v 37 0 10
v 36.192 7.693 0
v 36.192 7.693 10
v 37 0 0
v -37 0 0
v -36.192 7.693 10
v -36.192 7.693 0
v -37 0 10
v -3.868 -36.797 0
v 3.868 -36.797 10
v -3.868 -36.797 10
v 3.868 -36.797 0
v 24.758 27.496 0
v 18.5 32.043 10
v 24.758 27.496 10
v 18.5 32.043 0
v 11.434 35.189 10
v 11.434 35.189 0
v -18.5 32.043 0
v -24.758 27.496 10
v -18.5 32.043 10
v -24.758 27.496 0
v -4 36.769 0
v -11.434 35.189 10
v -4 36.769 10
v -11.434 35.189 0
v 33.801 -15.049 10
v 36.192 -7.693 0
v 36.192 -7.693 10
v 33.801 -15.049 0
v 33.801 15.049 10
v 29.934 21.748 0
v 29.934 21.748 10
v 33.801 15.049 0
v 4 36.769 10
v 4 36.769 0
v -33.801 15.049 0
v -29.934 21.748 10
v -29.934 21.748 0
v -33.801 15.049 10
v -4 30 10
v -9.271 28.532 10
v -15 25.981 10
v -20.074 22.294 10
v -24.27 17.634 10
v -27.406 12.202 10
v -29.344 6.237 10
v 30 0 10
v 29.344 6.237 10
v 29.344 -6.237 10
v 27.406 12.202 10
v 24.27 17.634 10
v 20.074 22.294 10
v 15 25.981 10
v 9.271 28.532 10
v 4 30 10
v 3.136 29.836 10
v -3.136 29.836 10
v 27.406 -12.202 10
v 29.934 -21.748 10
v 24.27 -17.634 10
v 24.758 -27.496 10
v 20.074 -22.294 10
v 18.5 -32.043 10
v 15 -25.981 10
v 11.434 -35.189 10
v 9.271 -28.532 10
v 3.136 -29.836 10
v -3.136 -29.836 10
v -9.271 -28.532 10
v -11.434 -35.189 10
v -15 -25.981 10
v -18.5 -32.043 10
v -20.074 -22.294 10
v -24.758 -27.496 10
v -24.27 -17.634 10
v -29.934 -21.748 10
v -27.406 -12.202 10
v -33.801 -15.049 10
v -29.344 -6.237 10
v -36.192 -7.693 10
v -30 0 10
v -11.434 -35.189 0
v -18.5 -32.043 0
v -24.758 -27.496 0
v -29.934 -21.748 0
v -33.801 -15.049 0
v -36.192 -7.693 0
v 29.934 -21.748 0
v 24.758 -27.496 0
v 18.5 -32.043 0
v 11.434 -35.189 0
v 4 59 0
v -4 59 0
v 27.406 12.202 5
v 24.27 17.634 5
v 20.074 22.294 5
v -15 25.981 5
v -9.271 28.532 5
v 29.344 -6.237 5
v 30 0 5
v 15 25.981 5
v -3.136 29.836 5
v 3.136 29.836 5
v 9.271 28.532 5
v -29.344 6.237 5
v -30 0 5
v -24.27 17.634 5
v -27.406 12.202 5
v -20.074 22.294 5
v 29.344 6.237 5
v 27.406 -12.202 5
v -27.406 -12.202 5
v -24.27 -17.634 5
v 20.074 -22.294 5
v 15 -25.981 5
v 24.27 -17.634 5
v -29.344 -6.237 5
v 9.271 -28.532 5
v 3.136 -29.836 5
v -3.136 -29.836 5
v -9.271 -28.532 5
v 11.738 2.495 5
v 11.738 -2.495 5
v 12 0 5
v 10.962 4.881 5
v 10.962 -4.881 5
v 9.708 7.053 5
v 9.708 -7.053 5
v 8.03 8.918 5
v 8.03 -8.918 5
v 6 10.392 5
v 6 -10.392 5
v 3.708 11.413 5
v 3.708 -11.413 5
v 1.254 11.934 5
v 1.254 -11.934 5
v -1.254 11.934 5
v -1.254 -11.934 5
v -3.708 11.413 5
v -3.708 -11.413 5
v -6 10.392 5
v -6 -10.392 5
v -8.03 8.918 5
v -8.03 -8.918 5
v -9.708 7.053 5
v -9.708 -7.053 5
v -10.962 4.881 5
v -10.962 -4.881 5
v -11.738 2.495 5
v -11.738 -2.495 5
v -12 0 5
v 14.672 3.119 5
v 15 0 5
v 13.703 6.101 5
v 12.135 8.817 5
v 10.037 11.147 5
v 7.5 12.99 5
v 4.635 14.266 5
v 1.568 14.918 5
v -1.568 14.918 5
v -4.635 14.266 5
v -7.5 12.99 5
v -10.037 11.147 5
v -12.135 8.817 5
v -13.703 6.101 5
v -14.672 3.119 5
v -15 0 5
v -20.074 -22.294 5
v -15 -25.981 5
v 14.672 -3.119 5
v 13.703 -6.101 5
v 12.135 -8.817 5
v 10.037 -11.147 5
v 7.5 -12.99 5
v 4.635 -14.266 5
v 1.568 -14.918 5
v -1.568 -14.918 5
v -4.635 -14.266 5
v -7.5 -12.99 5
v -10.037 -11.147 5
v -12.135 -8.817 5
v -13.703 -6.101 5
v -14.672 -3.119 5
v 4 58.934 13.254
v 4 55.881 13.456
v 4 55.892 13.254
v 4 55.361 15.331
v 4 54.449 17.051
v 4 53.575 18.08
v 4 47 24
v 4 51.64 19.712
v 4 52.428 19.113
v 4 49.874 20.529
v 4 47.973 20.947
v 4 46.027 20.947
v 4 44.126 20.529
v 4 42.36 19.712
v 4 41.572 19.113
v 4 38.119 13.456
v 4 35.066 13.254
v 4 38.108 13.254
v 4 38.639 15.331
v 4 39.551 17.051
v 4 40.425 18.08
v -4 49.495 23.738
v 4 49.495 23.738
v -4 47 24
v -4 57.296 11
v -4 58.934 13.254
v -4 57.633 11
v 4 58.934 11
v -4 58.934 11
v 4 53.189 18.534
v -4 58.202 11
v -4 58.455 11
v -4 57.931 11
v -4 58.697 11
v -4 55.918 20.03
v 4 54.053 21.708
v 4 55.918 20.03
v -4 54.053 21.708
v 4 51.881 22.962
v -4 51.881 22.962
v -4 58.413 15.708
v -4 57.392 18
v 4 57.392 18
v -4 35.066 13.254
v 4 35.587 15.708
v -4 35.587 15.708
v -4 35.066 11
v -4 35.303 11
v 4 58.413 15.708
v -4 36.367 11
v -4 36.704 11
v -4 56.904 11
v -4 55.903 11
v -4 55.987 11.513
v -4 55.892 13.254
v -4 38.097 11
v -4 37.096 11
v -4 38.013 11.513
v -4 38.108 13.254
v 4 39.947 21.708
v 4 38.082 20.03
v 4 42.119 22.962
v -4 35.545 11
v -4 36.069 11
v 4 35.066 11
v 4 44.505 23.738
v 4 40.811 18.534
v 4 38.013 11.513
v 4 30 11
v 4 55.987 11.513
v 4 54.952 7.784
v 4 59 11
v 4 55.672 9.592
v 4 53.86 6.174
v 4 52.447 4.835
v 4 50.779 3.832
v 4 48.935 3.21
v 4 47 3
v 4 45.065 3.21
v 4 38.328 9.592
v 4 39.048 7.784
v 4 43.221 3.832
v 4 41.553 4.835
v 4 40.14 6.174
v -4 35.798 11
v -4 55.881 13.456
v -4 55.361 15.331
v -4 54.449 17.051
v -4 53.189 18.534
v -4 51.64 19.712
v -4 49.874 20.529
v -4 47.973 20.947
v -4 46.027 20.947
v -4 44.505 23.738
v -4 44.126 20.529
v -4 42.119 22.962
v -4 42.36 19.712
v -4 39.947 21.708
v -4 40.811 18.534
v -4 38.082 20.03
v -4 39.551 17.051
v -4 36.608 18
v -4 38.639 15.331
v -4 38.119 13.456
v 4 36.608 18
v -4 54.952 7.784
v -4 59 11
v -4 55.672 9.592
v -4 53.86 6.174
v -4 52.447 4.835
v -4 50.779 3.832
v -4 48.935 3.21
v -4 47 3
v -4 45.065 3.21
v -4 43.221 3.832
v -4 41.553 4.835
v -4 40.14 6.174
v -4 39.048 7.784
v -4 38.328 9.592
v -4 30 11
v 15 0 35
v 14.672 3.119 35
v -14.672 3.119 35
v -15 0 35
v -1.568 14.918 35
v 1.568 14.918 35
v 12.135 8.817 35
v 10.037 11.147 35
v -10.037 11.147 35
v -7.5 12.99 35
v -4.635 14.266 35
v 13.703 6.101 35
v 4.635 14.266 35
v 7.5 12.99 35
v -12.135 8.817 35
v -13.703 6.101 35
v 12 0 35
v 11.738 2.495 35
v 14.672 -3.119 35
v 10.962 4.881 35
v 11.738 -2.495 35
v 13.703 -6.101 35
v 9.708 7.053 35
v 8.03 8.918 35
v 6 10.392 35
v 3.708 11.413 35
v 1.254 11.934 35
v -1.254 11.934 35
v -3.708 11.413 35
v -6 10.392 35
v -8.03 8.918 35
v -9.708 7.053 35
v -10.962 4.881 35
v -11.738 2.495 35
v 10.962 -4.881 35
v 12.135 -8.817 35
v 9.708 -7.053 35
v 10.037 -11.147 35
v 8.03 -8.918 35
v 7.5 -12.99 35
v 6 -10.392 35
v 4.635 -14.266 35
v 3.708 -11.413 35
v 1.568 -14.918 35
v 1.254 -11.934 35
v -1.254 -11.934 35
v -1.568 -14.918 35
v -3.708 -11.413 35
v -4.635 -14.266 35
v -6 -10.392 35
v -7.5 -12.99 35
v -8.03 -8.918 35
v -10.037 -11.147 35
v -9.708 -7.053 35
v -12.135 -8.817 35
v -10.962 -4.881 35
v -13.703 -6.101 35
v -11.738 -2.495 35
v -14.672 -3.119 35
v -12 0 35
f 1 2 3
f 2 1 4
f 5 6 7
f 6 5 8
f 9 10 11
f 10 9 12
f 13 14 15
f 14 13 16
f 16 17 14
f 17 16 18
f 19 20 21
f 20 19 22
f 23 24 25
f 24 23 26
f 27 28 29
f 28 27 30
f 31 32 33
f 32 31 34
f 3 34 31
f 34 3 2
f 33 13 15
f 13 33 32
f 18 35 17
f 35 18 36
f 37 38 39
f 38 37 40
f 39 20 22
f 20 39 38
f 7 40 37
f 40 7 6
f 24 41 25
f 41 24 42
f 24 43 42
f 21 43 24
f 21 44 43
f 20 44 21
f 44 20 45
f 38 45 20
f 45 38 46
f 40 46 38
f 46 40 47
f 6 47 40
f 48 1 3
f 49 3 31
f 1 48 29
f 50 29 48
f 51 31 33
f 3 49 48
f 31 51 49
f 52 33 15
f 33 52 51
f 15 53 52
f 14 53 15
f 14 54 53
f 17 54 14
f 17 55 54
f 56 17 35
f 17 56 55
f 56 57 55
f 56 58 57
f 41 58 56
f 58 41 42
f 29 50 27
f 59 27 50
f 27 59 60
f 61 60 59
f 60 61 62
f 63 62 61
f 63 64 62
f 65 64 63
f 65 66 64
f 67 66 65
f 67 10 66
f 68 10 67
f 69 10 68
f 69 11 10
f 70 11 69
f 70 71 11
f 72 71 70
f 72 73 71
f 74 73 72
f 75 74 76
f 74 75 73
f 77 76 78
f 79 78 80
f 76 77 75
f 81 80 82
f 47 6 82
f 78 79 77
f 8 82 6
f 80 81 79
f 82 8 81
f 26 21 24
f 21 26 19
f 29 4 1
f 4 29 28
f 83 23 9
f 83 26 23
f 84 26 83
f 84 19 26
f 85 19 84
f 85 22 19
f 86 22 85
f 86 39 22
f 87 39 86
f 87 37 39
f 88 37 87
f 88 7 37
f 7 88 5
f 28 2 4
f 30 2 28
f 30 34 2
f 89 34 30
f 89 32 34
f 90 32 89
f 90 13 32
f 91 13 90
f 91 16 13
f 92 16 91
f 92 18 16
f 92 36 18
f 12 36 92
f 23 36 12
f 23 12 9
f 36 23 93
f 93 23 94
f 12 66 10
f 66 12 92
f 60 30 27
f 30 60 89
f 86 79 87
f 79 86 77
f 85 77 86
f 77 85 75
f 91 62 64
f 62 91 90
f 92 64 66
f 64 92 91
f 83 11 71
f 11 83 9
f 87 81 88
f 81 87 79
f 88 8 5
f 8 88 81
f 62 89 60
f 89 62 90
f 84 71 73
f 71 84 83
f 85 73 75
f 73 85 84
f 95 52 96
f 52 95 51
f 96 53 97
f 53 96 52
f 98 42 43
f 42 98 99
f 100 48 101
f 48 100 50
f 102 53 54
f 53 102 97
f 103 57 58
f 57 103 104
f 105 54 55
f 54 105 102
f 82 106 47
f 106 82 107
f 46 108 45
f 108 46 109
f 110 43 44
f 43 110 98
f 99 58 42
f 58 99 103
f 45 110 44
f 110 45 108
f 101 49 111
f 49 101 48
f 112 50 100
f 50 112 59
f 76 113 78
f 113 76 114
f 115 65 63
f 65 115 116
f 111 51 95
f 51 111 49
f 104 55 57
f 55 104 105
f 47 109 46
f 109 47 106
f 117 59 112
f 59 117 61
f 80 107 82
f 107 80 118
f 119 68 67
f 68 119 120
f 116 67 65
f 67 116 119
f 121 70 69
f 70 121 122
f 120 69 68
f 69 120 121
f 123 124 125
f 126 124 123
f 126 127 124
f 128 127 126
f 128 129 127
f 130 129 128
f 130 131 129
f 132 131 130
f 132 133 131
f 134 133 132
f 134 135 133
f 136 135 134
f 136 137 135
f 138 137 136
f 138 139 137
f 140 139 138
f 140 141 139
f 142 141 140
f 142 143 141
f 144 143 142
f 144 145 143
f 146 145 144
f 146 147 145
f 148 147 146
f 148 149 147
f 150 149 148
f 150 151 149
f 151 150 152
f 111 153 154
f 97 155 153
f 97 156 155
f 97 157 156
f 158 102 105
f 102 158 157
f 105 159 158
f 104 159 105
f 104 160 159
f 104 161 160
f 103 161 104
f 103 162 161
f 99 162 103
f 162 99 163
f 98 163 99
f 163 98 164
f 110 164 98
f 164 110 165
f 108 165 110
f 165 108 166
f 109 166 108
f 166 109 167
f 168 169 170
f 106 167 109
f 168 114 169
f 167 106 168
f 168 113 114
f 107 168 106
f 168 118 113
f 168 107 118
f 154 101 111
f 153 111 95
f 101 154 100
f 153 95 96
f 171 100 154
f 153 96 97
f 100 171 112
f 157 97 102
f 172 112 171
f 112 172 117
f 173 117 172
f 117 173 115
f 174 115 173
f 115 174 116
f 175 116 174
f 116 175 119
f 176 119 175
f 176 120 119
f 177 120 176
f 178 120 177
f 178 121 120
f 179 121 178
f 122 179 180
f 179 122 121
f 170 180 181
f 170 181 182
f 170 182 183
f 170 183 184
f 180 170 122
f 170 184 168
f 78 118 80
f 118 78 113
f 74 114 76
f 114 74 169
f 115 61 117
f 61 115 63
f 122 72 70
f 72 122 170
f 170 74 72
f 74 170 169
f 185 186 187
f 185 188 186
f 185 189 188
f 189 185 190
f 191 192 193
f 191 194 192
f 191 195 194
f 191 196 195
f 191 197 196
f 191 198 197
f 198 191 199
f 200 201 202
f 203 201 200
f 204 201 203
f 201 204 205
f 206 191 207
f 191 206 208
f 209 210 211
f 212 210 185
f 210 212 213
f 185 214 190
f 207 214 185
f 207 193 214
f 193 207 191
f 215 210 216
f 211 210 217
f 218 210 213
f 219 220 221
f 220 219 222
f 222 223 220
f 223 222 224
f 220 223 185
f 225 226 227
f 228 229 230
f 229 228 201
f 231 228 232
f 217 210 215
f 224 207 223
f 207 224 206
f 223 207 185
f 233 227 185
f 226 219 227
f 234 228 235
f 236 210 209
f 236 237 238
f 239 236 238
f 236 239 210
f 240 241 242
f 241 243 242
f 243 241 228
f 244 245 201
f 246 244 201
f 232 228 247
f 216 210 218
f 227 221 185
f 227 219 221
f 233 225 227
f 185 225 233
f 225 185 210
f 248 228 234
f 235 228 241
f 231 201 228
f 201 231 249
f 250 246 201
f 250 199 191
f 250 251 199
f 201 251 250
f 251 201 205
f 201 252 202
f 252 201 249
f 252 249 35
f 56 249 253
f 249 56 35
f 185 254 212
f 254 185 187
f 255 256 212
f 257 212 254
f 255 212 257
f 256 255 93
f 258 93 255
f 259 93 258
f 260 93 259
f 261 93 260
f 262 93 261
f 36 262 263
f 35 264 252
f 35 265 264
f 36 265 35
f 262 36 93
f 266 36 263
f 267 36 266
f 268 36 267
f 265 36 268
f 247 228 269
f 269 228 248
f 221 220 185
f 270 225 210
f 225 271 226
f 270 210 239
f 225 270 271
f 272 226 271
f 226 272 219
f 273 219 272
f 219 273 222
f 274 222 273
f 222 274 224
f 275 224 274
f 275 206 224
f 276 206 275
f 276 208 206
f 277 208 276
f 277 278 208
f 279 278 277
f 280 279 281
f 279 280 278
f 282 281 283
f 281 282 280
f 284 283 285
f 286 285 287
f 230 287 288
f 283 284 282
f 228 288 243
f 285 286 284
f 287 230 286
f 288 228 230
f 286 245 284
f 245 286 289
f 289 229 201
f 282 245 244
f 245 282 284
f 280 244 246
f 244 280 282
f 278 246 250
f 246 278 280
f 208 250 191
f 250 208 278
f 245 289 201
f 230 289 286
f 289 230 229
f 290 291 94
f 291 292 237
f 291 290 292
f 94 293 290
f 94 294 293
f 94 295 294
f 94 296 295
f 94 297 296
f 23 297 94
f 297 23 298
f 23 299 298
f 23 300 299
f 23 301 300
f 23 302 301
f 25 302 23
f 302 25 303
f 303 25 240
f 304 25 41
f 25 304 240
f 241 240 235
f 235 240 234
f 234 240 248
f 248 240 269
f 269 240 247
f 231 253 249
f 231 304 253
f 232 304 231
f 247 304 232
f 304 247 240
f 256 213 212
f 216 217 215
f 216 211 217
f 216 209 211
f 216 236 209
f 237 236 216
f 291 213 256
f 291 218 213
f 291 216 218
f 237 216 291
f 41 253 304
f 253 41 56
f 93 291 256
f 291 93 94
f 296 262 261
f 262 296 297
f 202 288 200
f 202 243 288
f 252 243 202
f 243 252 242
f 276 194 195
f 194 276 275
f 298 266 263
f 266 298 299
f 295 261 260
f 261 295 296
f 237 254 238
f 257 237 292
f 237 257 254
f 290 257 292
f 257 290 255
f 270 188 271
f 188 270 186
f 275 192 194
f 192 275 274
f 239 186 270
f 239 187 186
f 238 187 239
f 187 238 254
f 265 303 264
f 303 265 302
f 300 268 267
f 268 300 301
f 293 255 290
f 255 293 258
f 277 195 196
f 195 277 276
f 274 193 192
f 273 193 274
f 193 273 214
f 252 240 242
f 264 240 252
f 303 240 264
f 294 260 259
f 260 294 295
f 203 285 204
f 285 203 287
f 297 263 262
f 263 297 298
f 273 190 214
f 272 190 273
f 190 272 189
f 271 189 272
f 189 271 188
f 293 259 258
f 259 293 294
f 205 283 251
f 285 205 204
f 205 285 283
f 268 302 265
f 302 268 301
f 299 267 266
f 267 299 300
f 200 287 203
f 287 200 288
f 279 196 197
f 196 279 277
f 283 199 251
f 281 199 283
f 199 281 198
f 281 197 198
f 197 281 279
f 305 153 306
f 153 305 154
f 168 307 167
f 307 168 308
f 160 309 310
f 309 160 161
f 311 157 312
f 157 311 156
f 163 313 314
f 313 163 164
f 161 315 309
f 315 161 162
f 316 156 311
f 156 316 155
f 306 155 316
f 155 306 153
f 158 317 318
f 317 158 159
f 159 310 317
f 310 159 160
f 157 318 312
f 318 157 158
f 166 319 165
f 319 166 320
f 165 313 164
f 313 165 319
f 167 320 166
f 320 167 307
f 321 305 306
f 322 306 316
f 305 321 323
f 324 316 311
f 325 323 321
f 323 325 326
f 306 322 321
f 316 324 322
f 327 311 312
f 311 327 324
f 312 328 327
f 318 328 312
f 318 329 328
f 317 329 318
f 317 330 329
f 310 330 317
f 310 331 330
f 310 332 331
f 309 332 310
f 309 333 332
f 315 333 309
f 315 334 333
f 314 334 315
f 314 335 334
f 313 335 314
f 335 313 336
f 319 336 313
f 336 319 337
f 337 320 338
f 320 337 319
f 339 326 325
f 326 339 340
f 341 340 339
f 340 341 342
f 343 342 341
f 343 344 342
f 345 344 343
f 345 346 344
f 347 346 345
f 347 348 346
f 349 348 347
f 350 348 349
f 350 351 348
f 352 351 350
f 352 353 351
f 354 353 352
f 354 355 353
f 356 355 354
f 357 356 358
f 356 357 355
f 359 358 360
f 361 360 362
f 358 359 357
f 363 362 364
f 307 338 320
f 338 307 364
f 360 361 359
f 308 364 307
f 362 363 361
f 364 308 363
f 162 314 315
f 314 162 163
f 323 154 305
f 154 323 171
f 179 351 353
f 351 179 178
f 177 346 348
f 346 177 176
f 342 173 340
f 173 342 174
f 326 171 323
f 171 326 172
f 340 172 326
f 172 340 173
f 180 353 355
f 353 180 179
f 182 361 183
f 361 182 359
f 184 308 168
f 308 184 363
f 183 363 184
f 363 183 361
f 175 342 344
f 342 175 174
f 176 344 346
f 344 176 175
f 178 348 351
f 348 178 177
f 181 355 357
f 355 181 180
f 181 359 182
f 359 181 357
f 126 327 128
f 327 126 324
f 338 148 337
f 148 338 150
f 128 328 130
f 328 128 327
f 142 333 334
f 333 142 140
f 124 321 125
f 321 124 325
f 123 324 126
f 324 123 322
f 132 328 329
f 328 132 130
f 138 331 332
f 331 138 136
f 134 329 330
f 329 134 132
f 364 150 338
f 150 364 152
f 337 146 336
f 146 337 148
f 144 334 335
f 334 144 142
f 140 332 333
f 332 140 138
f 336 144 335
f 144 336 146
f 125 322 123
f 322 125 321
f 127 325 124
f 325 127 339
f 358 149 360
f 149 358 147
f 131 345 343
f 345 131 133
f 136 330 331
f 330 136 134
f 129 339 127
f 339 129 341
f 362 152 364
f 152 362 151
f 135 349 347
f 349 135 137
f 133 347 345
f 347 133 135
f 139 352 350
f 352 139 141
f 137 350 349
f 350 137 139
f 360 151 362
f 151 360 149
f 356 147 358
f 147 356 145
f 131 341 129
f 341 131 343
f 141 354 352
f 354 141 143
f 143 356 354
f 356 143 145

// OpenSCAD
// Base
difference() {
	cylinder(10, 37, 37);
	translate([0, 0, 5]){cylinder(20, 30, 30);};
}

// Handle
difference() {
	union() {
		translate([-4, 47, 12]) {
			rotate([0, 90, 0])cylinder(8, 12, 12);
		}

		translate([-4, 30, 0]) {
			cube([8, 29, 11]);
		}
	}
	translate([-7, 47, 12]) {
		rotate([0, 90, 0])cylinder(14, 9, 9);
	}
}

// Holder
difference() {
	translate([0, 0, 5])cylinder(30, 15, 15);
	translate([0, 0, 5])cylinder(30, 12, 12);
}
